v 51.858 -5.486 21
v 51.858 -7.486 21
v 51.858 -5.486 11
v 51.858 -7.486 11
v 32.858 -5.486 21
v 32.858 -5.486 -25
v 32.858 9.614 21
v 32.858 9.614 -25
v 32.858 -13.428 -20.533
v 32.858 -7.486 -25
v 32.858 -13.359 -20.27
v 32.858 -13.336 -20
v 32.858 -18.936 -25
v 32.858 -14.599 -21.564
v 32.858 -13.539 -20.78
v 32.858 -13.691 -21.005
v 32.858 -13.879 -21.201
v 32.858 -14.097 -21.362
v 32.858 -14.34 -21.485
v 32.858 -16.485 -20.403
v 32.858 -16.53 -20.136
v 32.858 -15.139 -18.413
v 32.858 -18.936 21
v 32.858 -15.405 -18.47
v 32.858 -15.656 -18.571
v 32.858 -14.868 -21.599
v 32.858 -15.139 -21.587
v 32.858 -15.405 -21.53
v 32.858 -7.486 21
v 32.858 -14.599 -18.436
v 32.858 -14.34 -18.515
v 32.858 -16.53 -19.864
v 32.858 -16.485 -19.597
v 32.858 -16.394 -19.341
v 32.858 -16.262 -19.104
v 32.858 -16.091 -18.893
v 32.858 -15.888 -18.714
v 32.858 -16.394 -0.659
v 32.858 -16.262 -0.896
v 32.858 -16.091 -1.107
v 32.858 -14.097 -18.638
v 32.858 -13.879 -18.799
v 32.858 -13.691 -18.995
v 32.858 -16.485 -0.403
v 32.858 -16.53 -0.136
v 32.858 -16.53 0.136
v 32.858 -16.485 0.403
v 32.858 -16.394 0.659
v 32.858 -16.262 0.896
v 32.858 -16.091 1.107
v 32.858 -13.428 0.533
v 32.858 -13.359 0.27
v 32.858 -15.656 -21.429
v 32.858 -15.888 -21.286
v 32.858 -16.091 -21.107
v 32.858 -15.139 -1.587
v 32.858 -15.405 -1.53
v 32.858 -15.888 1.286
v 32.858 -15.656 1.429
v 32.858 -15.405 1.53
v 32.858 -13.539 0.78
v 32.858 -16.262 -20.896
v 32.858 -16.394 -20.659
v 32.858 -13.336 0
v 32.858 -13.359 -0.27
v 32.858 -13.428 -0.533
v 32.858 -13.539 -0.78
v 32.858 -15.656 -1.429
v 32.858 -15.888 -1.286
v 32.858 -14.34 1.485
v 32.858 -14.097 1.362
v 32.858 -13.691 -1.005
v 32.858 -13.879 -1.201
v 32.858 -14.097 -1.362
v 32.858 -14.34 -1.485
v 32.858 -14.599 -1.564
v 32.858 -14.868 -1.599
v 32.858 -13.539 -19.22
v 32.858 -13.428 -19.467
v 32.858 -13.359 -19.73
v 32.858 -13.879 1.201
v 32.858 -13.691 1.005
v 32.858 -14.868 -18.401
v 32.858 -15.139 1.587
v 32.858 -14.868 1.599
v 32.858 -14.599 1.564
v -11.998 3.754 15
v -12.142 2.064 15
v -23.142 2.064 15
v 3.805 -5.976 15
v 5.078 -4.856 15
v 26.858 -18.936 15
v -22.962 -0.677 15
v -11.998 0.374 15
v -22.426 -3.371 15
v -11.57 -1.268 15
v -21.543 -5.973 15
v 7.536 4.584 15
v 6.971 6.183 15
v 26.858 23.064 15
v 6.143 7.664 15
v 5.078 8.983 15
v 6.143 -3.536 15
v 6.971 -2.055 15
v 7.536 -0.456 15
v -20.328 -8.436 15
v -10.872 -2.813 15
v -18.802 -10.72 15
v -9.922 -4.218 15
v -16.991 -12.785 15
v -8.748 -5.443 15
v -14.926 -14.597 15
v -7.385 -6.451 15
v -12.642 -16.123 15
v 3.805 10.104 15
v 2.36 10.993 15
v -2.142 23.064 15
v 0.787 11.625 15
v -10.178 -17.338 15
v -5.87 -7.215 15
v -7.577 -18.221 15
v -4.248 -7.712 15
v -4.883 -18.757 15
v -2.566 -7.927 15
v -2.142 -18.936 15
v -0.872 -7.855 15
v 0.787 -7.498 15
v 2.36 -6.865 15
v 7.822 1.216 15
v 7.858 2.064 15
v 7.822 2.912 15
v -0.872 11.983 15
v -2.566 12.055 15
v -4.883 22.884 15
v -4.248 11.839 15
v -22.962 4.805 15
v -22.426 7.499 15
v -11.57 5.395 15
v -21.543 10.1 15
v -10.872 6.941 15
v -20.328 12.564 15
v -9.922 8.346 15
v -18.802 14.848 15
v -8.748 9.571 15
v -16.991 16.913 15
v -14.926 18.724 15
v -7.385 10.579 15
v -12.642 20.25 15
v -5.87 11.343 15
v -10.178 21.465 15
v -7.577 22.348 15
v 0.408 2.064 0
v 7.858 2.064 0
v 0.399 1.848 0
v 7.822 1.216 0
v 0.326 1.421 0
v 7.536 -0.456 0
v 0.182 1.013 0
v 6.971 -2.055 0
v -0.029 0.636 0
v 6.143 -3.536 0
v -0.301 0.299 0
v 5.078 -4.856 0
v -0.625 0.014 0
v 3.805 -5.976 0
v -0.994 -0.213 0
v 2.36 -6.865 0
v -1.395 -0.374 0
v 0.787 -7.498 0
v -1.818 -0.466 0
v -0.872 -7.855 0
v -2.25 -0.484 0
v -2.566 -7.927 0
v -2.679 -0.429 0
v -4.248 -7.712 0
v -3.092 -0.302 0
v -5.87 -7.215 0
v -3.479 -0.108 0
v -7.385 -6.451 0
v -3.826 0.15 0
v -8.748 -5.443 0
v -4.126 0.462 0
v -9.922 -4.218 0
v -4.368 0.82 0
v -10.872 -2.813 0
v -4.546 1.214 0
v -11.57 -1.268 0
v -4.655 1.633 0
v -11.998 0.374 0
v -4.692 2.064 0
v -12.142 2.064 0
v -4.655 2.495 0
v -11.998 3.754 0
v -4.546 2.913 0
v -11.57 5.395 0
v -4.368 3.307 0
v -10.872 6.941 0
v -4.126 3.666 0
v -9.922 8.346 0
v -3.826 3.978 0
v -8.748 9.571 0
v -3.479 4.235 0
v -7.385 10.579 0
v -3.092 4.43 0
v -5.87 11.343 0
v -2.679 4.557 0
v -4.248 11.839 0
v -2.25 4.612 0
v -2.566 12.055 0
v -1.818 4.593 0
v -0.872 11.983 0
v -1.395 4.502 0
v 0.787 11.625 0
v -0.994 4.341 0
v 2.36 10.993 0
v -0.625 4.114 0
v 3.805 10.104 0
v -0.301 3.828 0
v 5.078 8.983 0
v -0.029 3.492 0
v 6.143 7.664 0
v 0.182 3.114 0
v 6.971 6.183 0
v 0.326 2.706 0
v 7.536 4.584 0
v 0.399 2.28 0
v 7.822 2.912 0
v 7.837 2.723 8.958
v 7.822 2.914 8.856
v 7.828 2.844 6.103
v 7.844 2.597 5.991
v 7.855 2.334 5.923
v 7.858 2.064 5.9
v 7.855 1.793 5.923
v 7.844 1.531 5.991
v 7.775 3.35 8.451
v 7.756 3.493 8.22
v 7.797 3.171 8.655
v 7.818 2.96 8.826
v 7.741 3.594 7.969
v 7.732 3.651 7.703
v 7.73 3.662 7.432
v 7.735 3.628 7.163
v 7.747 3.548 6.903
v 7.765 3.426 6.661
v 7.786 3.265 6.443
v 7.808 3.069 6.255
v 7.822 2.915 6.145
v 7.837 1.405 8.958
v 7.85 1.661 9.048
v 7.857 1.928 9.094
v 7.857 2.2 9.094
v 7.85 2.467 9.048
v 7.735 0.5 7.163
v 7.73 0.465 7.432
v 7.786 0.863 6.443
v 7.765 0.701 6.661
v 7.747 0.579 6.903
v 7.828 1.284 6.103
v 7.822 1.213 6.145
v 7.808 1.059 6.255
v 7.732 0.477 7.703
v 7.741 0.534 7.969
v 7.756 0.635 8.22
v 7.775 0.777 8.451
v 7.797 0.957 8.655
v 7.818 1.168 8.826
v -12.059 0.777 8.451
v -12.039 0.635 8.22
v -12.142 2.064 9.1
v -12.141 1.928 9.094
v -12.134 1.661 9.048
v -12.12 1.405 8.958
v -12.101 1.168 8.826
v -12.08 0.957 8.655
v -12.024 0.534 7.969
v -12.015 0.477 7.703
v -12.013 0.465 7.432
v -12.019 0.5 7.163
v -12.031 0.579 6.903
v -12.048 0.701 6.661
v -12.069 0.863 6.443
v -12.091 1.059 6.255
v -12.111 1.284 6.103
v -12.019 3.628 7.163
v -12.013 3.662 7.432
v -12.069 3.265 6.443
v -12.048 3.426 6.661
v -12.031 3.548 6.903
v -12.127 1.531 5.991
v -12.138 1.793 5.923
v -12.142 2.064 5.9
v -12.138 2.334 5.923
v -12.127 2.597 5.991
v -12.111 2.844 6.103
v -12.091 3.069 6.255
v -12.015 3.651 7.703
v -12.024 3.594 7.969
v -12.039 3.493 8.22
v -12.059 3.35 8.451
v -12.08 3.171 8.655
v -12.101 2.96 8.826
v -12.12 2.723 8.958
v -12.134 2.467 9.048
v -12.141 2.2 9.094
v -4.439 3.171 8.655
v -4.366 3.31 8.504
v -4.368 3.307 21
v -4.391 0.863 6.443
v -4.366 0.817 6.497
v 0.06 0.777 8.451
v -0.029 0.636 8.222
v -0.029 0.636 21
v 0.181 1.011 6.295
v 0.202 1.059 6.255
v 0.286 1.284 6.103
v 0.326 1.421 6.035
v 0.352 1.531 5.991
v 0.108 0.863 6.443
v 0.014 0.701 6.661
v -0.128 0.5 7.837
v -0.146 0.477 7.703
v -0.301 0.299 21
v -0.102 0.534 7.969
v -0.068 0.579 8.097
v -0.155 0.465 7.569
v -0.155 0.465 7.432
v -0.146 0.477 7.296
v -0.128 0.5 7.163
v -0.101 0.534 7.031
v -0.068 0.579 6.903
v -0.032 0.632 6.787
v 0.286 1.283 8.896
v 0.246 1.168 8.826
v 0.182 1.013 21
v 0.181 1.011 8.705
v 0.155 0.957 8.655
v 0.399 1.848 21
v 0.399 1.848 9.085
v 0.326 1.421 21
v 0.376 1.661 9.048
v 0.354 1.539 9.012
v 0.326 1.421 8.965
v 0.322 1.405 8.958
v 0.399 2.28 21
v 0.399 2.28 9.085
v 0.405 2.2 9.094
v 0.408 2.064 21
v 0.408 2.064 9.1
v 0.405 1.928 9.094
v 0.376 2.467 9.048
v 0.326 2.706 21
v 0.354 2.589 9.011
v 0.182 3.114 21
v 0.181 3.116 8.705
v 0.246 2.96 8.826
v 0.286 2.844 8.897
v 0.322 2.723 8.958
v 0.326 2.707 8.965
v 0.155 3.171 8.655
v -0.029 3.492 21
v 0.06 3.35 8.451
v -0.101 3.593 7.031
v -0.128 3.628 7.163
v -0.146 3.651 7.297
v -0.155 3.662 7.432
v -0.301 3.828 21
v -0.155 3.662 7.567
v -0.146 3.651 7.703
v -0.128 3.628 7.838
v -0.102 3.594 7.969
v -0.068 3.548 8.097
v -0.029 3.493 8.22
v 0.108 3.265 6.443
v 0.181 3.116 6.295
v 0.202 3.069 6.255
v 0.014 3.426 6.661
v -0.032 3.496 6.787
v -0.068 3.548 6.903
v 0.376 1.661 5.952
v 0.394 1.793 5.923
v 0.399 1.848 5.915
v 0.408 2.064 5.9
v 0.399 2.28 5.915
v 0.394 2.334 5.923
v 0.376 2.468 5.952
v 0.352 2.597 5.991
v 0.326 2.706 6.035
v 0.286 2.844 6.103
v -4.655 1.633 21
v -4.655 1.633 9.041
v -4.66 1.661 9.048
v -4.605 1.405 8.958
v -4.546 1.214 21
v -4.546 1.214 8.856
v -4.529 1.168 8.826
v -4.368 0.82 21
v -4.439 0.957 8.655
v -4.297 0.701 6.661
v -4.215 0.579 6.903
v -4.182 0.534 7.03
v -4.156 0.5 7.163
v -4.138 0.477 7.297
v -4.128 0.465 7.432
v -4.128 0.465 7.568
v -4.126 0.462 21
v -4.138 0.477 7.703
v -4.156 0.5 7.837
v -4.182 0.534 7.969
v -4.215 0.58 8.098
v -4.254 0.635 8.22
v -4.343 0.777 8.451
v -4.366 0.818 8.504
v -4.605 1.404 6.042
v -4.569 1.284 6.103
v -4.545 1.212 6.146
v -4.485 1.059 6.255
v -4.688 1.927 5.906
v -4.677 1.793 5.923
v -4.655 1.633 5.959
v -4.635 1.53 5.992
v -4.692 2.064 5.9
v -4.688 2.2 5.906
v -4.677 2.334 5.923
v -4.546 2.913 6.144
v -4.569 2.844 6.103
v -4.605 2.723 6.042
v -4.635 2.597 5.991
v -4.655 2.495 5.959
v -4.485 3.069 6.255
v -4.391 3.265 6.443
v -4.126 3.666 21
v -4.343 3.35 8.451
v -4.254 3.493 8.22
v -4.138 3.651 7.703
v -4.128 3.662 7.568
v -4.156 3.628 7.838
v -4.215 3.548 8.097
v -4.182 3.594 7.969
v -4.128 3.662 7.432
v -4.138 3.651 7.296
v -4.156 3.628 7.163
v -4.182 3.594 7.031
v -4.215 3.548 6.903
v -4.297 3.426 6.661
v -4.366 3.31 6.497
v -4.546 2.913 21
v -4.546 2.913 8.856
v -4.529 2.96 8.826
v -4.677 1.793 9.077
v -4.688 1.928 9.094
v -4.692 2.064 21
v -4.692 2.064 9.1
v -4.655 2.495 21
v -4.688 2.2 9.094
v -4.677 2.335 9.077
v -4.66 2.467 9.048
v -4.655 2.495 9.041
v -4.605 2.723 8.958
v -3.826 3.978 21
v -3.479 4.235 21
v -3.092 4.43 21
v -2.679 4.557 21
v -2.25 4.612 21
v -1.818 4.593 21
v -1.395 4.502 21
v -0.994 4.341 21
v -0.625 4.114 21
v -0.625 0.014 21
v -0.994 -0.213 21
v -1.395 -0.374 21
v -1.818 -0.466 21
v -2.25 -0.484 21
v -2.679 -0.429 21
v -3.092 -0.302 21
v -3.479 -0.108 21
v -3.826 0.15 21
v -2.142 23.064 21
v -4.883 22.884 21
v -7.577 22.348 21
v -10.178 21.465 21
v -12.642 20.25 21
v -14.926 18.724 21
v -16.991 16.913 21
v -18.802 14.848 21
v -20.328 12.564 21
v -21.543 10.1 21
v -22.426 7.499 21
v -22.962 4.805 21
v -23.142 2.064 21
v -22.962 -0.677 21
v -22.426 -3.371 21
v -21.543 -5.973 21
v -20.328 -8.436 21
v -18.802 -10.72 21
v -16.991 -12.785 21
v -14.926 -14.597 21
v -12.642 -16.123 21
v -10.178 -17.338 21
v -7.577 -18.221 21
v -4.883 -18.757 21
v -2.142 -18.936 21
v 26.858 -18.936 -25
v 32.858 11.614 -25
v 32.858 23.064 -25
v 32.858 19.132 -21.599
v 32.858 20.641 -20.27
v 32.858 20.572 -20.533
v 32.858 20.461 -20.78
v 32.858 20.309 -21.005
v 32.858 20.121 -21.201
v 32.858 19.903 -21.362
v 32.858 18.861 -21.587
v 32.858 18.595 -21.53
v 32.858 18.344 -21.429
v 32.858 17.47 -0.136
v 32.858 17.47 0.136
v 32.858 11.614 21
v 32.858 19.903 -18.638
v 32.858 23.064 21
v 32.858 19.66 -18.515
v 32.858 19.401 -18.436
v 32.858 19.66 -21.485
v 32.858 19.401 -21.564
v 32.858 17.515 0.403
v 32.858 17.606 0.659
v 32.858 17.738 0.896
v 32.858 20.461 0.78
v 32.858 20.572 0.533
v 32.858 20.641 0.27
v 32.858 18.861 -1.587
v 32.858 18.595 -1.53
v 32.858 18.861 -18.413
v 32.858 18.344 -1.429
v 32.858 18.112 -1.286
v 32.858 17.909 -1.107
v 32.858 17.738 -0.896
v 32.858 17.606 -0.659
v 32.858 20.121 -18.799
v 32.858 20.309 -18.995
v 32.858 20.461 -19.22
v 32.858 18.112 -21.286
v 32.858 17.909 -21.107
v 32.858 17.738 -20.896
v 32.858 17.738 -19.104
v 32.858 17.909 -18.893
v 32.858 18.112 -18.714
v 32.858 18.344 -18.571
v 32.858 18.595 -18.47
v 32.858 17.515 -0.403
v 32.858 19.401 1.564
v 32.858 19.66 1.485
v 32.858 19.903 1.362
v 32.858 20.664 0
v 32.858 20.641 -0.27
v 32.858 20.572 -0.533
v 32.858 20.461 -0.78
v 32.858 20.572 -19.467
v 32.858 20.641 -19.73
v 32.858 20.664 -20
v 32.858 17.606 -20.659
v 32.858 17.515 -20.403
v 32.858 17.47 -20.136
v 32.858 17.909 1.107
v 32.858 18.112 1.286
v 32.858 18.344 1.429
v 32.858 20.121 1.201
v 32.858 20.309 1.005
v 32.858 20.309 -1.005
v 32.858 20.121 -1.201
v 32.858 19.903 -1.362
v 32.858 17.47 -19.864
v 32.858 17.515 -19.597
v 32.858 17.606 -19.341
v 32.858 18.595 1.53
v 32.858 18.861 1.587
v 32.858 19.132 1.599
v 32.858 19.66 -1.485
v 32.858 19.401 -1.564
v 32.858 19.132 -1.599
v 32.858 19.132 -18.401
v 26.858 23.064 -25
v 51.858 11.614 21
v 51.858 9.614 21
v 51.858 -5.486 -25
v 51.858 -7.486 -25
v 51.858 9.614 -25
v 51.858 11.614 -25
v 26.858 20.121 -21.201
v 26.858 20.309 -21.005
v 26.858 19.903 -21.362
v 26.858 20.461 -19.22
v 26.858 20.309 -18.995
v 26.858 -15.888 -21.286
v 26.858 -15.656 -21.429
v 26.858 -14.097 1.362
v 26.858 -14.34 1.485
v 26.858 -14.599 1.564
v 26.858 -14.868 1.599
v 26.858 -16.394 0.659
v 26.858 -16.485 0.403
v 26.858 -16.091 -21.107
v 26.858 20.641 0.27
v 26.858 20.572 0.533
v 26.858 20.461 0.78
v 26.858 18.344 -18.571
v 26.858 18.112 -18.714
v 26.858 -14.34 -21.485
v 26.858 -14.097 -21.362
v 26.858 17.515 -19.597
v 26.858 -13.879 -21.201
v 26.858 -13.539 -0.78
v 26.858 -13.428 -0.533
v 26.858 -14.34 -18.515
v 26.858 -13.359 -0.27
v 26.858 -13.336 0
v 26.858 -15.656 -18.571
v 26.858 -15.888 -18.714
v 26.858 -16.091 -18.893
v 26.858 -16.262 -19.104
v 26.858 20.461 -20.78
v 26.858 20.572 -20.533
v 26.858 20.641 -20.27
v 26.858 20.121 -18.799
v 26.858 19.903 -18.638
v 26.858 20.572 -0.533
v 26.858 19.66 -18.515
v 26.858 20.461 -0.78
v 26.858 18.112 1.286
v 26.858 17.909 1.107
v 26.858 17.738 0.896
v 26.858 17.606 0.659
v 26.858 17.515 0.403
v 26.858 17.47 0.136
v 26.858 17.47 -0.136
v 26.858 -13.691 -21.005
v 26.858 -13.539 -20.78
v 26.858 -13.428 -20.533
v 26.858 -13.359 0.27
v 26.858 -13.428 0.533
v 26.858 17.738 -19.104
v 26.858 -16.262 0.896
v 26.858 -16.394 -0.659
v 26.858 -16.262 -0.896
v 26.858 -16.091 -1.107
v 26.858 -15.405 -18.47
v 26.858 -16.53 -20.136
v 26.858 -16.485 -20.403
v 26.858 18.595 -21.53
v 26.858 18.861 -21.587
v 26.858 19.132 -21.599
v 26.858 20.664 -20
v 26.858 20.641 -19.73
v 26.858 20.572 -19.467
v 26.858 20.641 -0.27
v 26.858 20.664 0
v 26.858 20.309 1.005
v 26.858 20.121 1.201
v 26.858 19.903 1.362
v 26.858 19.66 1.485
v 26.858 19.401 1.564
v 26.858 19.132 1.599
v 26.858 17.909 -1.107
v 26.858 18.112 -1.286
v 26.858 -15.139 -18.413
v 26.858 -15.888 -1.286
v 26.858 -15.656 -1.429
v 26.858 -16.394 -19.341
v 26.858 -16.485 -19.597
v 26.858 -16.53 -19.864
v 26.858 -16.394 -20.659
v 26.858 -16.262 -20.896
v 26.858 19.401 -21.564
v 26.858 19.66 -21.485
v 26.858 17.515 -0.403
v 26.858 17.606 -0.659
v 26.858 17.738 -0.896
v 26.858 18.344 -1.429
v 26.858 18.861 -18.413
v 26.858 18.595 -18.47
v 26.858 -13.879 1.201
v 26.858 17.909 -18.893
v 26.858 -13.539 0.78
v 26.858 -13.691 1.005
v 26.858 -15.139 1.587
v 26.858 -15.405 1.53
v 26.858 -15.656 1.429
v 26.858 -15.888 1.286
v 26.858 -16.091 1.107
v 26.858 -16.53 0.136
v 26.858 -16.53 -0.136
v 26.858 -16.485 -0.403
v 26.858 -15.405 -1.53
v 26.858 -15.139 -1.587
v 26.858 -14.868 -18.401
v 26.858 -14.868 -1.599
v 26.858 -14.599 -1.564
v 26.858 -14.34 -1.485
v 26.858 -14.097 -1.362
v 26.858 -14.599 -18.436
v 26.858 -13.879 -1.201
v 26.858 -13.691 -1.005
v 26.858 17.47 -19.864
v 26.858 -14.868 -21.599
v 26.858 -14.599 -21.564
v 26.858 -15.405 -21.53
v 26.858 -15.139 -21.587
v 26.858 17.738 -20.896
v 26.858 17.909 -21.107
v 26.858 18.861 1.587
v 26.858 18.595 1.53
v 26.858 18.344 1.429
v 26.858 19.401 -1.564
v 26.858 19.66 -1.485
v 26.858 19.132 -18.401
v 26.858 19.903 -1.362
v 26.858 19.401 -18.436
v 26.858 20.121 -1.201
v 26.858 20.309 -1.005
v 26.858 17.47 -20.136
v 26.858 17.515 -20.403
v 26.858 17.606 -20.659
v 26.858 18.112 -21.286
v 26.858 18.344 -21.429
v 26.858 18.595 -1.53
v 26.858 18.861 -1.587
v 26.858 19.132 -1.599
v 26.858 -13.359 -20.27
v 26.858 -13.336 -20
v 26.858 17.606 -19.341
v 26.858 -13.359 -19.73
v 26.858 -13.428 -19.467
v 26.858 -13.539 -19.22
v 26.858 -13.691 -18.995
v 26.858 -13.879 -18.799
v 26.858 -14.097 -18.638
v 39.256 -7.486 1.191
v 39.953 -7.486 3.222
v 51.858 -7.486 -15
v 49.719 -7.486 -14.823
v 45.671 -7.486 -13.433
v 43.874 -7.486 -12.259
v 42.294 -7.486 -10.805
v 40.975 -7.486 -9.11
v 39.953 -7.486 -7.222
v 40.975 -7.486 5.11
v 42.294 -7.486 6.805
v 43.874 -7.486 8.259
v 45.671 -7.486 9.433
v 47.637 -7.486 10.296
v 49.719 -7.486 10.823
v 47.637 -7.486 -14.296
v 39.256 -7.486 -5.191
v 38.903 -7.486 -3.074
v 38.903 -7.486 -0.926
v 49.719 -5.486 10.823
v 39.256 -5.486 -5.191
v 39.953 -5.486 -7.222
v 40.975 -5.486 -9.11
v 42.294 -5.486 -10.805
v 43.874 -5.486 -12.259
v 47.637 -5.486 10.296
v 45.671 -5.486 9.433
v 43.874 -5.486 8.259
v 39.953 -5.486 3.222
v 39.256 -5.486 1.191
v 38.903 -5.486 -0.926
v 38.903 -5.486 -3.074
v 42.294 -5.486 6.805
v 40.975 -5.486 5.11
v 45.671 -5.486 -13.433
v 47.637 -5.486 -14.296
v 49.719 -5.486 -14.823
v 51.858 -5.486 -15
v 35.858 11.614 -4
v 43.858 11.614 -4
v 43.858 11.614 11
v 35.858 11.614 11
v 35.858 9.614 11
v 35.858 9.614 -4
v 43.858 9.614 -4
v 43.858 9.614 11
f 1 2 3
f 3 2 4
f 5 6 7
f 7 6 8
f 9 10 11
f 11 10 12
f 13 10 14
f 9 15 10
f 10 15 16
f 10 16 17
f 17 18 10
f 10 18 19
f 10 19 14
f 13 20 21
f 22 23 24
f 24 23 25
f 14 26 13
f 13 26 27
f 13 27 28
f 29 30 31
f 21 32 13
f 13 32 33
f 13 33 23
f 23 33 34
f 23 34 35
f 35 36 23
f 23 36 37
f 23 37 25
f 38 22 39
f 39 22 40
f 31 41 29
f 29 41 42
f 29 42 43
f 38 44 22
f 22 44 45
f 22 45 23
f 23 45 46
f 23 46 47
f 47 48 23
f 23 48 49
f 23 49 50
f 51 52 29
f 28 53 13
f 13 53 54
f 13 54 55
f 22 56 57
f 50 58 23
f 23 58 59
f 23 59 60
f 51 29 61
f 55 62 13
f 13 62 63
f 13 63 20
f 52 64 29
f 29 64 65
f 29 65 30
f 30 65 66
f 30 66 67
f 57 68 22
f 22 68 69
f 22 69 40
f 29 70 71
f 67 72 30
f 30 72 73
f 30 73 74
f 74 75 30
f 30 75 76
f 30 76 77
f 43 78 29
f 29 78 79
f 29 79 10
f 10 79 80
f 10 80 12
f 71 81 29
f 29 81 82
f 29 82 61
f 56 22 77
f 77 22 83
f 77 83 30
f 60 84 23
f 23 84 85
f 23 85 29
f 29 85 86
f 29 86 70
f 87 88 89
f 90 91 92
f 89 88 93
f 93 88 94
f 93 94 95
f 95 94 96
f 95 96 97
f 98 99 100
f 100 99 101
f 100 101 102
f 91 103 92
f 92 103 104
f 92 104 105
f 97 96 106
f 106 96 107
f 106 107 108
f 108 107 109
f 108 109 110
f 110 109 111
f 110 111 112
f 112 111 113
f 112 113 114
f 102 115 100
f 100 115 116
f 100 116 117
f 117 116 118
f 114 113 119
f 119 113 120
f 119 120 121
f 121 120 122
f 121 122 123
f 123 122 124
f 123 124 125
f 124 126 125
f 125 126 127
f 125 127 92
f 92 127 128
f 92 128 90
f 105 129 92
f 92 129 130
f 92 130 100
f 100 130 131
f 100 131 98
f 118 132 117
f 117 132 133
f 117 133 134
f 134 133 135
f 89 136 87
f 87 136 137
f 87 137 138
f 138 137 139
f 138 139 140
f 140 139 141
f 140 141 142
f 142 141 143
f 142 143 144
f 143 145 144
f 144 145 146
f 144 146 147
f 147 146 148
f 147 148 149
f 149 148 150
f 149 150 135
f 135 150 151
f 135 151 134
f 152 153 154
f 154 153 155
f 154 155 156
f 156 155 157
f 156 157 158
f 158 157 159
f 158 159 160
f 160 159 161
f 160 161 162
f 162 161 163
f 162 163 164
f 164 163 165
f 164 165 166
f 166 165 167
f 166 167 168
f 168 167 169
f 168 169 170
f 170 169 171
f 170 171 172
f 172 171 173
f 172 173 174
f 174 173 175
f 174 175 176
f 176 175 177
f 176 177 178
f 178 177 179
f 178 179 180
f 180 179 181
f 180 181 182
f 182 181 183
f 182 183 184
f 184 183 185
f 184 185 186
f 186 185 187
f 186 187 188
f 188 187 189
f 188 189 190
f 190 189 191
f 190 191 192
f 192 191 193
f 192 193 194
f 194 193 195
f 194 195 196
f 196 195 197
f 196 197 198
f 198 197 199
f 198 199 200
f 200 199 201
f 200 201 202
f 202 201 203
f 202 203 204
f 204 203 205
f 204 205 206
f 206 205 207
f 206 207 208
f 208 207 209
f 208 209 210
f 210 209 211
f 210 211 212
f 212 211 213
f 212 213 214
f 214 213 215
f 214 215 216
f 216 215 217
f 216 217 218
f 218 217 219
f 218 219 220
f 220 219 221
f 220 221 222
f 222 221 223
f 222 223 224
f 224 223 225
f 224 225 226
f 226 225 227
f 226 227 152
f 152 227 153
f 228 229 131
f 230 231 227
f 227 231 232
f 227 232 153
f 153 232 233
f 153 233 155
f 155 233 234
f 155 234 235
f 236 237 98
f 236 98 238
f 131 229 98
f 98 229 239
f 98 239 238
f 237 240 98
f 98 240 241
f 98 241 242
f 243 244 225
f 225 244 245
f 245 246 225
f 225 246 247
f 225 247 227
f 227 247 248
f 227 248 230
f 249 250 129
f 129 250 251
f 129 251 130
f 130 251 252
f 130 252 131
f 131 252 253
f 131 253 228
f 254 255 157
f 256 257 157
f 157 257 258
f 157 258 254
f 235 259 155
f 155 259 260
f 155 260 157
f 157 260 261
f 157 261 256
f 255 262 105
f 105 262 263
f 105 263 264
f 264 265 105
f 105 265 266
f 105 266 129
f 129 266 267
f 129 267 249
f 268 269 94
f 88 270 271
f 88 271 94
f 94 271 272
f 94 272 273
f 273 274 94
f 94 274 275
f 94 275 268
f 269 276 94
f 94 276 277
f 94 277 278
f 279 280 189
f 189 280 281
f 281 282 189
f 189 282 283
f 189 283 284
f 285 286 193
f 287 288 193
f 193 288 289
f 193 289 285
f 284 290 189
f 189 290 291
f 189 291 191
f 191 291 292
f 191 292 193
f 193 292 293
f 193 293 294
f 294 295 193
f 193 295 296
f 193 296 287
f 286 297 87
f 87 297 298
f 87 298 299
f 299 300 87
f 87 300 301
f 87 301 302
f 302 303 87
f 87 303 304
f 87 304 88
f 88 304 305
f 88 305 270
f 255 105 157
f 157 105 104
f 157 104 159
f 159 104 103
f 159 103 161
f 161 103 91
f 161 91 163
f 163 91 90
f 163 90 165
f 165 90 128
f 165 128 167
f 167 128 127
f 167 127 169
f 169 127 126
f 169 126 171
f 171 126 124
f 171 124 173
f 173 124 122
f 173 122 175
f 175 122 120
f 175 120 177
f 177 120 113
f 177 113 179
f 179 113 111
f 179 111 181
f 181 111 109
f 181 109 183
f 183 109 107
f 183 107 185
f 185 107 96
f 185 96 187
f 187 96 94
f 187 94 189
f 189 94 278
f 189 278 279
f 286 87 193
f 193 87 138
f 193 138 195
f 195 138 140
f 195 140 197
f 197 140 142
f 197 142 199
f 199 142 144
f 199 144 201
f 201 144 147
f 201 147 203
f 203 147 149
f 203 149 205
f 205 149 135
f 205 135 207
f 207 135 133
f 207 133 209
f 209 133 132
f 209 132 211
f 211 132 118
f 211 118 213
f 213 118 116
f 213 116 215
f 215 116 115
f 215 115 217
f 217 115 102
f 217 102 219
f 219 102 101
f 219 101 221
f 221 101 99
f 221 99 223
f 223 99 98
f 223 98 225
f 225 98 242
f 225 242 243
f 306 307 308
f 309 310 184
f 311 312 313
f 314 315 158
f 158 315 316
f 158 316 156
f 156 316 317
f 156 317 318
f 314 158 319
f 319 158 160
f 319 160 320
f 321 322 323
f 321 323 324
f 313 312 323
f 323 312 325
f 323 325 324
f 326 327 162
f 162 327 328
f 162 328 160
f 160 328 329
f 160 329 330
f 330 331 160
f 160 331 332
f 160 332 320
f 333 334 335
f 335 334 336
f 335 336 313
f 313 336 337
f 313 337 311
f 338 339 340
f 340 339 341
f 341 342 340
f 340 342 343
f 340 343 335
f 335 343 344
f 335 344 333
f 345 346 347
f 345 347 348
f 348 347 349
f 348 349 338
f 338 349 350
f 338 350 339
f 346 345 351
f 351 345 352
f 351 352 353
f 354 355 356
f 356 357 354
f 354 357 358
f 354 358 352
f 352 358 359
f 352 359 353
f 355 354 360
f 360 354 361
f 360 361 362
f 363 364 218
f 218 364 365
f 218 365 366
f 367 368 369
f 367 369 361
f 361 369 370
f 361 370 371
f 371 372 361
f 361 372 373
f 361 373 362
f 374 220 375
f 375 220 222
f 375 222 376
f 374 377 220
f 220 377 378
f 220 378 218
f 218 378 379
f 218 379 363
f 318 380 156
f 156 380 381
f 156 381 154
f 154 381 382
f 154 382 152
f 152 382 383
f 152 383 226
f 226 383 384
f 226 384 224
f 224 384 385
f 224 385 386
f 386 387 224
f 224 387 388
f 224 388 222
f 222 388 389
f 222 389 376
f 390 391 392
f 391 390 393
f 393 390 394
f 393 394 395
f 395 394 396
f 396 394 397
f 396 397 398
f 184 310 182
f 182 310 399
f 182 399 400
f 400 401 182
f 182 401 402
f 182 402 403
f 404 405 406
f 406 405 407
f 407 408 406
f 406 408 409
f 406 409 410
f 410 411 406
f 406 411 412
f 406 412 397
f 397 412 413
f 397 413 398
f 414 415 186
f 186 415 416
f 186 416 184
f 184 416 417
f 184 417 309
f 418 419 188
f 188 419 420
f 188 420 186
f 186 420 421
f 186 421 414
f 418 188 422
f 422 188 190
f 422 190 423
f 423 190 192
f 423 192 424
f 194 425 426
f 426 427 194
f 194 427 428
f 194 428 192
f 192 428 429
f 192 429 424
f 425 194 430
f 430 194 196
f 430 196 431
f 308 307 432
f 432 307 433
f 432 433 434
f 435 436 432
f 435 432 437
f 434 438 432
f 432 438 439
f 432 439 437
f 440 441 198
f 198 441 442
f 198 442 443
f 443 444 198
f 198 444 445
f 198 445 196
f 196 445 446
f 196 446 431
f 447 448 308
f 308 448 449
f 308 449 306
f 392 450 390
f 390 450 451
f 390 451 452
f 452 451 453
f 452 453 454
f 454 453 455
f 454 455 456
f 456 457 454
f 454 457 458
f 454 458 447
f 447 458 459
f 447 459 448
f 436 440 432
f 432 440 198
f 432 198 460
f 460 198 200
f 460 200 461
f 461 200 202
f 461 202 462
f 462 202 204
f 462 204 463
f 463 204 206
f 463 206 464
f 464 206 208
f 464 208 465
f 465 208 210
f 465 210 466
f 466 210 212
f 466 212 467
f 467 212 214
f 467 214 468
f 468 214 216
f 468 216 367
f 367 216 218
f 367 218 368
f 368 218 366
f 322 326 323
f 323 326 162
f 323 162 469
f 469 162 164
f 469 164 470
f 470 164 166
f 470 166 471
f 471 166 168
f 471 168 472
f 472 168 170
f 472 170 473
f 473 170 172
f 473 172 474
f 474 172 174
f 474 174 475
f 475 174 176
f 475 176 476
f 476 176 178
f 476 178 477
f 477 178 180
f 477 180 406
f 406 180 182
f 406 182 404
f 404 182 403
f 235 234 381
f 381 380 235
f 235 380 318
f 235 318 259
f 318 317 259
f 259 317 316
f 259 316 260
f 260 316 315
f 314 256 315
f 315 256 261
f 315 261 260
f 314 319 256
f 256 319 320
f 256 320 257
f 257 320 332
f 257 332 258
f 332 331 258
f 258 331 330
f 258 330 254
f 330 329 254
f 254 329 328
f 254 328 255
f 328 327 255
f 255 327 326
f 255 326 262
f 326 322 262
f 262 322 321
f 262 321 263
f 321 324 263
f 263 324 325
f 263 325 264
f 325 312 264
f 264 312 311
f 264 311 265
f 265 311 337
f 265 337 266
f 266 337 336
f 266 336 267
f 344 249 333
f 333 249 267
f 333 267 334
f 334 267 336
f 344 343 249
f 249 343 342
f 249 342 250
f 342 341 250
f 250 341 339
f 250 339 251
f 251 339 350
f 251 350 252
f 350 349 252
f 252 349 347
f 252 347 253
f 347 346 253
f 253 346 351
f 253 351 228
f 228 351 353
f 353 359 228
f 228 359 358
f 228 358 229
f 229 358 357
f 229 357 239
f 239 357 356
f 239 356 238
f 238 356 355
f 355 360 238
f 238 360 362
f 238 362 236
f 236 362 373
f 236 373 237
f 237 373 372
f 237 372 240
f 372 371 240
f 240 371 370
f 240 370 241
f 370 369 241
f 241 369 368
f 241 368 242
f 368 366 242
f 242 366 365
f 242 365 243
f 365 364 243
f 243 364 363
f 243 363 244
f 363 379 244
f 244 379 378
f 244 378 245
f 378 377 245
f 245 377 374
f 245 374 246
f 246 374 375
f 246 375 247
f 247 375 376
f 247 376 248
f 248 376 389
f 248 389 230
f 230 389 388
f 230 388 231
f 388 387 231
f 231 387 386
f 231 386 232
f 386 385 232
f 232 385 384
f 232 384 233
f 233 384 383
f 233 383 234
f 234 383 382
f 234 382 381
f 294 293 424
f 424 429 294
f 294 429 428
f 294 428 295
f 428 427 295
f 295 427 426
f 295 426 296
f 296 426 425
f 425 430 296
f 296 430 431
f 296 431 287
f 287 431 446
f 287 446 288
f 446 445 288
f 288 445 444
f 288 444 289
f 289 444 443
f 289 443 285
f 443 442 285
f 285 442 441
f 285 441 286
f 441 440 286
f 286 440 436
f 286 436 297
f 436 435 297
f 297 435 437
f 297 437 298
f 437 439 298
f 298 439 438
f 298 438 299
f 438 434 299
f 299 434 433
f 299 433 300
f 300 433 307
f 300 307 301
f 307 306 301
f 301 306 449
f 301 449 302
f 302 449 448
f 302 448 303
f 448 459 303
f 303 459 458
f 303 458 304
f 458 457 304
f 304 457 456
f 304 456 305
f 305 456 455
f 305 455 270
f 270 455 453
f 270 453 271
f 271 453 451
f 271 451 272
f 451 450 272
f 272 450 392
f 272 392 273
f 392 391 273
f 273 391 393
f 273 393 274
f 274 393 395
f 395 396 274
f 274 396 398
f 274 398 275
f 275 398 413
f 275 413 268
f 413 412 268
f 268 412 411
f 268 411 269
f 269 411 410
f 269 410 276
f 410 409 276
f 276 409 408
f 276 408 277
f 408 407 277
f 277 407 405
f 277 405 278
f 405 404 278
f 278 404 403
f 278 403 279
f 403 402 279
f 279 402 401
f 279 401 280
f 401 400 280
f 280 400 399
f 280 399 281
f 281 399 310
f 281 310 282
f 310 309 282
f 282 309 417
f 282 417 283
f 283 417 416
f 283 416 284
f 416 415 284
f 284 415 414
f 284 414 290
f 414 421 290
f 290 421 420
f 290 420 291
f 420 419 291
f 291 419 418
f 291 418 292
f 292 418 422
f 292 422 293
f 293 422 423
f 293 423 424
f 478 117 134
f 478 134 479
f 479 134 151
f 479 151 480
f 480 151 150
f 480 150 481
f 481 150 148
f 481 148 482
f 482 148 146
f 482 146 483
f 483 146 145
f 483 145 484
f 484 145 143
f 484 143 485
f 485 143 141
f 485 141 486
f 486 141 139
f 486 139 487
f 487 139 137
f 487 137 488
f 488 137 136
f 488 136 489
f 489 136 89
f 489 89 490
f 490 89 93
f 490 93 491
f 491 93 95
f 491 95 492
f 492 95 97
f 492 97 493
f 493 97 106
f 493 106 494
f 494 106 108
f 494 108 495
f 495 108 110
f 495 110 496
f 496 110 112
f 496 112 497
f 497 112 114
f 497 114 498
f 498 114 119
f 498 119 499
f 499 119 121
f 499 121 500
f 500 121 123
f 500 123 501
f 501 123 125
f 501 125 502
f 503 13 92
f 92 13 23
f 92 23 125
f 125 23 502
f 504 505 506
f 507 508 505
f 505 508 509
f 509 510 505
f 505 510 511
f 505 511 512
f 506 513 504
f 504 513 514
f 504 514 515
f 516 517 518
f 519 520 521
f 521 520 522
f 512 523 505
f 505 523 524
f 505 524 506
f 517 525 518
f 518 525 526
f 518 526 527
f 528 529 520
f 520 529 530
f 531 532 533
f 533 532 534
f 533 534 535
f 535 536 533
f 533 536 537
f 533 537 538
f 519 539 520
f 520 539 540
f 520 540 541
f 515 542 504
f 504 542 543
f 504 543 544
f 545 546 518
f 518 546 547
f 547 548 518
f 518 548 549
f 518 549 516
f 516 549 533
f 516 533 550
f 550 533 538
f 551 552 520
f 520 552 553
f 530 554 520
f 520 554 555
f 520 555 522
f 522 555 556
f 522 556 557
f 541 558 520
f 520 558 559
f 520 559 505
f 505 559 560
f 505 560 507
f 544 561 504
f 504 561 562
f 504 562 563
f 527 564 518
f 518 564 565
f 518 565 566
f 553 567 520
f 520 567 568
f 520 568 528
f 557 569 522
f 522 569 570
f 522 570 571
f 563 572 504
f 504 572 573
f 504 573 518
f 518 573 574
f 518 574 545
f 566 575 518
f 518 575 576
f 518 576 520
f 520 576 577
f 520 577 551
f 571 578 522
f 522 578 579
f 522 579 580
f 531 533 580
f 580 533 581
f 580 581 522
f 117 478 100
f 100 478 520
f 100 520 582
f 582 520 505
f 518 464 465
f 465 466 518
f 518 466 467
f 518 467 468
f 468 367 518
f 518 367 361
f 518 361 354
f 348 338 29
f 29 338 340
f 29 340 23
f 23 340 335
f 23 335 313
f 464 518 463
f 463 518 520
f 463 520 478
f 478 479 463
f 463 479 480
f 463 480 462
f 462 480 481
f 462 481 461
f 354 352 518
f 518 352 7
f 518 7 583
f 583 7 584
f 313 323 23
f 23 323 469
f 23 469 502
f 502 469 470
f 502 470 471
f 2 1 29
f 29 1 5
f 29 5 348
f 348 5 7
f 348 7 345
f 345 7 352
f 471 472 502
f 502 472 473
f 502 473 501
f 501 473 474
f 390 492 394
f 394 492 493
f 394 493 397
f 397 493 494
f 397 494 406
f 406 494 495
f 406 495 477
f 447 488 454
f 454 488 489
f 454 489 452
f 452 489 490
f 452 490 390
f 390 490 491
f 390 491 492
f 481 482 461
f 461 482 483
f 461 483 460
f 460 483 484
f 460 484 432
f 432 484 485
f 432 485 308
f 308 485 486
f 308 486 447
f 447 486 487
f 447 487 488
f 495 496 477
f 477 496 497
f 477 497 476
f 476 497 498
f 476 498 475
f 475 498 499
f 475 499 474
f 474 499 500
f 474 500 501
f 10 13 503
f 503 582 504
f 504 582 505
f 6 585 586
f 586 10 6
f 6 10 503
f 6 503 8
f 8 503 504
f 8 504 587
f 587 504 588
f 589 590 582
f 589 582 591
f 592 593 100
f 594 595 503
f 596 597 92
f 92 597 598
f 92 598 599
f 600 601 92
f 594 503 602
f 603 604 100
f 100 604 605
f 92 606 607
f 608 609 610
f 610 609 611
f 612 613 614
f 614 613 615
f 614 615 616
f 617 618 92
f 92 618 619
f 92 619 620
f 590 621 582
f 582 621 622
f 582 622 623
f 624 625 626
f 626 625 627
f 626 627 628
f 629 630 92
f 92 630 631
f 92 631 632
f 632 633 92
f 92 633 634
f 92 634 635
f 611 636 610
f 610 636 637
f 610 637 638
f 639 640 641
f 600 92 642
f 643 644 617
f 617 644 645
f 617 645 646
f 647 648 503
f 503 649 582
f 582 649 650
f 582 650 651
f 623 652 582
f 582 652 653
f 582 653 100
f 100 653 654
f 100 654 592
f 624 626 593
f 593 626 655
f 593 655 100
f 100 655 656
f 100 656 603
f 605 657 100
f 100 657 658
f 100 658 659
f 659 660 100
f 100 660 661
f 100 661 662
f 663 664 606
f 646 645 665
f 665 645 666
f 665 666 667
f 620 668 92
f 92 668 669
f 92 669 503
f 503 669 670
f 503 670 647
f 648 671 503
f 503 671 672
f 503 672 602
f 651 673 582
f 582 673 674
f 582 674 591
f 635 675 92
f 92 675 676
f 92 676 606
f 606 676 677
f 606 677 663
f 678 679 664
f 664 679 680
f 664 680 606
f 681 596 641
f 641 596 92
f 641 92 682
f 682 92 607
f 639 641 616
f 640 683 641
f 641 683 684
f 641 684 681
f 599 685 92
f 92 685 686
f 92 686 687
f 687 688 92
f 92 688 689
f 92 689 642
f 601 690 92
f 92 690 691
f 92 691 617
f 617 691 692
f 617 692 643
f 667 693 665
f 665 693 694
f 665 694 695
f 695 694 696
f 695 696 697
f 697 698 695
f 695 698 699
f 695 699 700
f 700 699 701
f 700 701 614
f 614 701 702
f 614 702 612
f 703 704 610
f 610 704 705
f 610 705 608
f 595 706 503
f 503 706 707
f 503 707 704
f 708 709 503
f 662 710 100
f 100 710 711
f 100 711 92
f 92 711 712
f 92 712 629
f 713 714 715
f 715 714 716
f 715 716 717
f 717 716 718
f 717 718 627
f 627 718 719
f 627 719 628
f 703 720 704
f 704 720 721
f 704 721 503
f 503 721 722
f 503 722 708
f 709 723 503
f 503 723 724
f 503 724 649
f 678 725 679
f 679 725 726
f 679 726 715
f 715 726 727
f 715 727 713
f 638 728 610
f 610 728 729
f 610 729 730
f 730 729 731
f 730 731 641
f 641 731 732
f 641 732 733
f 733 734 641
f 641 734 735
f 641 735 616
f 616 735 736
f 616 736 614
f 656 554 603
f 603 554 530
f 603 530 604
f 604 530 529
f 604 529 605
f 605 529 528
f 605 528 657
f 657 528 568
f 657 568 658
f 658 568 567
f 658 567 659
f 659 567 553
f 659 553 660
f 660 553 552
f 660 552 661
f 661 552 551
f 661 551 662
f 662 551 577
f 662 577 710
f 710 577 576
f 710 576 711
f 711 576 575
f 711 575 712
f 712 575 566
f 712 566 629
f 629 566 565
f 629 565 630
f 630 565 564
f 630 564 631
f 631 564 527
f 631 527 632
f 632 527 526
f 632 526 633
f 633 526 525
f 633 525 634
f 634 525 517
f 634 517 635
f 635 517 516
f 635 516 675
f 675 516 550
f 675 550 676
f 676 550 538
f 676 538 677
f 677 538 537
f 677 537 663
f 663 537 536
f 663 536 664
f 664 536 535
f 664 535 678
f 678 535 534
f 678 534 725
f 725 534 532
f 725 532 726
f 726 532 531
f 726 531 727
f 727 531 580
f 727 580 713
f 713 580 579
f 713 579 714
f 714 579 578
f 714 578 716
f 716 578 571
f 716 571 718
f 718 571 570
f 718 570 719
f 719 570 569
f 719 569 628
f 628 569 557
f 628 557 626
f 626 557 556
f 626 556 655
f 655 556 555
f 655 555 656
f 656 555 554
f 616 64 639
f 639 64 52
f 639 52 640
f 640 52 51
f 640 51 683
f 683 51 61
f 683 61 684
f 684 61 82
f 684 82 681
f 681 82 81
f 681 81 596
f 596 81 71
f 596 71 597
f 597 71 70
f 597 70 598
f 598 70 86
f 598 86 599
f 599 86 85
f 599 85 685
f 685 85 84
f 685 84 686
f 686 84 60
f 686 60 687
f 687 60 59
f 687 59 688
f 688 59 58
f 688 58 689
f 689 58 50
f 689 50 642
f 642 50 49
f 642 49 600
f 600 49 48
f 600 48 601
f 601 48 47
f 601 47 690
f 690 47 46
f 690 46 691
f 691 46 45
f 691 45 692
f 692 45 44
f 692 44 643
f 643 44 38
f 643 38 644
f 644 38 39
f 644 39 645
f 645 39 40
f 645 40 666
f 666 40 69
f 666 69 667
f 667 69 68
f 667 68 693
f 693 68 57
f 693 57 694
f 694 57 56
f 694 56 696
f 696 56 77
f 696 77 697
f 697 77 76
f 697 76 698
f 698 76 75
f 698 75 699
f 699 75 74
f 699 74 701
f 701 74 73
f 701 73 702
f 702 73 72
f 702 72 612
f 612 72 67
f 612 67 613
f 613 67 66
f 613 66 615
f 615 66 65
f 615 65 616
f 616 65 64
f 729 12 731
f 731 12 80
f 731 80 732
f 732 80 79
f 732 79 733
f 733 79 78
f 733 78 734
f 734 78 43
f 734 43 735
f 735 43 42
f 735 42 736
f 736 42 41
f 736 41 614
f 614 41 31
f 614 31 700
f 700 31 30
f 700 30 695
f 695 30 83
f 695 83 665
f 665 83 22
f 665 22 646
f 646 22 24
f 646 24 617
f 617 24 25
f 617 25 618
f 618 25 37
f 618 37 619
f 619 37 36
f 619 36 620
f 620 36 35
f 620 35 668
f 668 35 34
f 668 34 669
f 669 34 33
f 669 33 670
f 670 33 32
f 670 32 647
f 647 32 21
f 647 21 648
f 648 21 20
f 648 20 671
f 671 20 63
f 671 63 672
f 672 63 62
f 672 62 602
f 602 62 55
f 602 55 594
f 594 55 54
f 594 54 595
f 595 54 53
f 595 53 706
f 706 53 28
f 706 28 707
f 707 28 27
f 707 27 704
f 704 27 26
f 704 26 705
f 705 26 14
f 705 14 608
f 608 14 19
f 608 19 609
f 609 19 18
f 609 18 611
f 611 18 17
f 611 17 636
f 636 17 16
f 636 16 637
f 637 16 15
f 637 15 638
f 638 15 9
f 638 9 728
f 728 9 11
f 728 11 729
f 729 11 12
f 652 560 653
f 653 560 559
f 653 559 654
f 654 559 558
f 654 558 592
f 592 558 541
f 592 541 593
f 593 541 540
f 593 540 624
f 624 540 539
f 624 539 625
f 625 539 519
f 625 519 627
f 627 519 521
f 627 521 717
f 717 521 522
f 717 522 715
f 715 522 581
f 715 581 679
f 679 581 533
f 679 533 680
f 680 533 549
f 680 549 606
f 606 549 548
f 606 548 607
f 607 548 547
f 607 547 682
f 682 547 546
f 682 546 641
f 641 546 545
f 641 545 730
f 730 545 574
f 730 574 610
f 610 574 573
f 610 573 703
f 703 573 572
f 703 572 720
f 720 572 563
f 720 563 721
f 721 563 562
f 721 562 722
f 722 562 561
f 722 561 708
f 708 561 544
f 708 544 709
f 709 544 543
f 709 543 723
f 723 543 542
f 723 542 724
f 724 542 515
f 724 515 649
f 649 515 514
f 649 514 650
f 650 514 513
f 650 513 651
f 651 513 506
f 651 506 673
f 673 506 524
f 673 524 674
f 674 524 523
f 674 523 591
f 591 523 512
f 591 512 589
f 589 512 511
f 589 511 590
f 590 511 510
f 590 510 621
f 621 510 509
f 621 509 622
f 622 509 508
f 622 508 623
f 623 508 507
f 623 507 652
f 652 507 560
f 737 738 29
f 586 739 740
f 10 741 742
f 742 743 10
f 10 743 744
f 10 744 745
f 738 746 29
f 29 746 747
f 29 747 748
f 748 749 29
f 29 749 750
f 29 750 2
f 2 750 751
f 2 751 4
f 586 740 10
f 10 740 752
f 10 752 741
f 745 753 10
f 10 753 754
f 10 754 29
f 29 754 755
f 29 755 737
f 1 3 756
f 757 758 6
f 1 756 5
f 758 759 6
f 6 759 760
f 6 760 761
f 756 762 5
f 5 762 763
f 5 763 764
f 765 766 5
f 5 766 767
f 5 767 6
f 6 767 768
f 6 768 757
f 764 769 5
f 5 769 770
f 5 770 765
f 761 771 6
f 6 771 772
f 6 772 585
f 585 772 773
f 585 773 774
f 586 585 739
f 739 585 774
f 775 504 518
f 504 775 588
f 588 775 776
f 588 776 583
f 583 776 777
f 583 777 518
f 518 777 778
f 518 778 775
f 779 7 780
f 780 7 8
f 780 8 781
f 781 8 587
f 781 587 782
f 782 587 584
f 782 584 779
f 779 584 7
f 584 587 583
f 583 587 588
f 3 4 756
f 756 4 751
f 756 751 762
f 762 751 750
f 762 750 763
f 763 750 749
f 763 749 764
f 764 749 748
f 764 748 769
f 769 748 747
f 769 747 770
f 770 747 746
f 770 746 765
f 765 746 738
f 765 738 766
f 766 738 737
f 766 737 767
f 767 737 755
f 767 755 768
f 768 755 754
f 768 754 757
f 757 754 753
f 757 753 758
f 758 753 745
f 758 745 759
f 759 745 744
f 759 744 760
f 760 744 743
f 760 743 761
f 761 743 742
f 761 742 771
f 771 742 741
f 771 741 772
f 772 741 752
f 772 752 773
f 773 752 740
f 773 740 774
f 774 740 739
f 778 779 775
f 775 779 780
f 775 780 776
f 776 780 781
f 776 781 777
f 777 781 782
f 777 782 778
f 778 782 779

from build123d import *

# Parameters (mm, degrees)
SKETCH_1_R          = 10
SKETCH_1_R_2        = 2.55
EXTRUDE_1_DEPTH     = 15
SKETCH_3_R          = 1.6
CUT_EXTRUDE_1_DEPTH = 21
EXTRUDE_2_DEPTH     = 6
SKETCH_6_R          = 2.55
CUT_EXTRUDE_2_DEPTH = 10
SKETCH_7_W          = 40
SKETCH_7_H          = 42
EXTRUDE_3_DEPTH     = 6
SKETCH_8_R          = 1.6
CUT_EXTRUDE_3_DEPTH = 6
SKETCH_9_W          = 46
SKETCH_9_H          = 2
EXTRUDE_4_DEPTH     = 19
SKETCH_10_R         = 13
CUT_EXTRUDE_4_DEPTH = 8
SKETCH_11_W         = 8
SKETCH_11_H         = 15
CUT_EXTRUDE_5_DEPTH = 8


with BuildPart() as part:
    # 草图1 → 凸台-拉伸1 (new body)
    with BuildSketch(Plane.XY):
        with Locations((-2.14168272, 2.06384273)):
            Circle(SKETCH_1_R)
        with Locations((-2.14168272, 2.06384273)):
            Circle(SKETCH_1_R_2, mode=Mode.SUBTRACT)
    extrude(amount=EXTRUDE_1_DEPTH)

    # 草图3 → 切除-拉伸1 (cut, through all)
    with BuildSketch(Plane(origin=(7.85831728, 0, 0), x_dir=(0, 0, -1), z_dir=(1, 0, 0))):
        with Locations((-7.5, 2.06384273)):
            Circle(SKETCH_3_R)
    extrude(amount=-CUT_EXTRUDE_1_DEPTH, mode=Mode.SUBTRACT)

    # 草图5 → 凸台-拉伸2 (add)
    with BuildSketch(Plane.XY.offset(15)):
        with BuildLine():
            Line((-2.14168272, 23.06384273), (32.85831728, 23.06384273))
            Line((32.85831728, 23.06384273), (32.85831728, -18.93615727))
            Line((32.85831728, -18.93615727), (-2.14168272, -18.93615727))
            ThreePointArc((-2.14168272, -18.93615727), (-23.14168272, 2.06384273), (-2.14168272, 23.06384273))
        make_face()
    extrude(amount=EXTRUDE_2_DEPTH)

    # 草图6 → 切除-拉伸2 (cut)
    with BuildSketch(Plane(origin=(0, 0, 15), x_dir=(-1, 0, 0), z_dir=(0, 0, -1))):
        with Locations((2.14168272, 2.06384273)):
            Circle(SKETCH_6_R)
    extrude(amount=-CUT_EXTRUDE_2_DEPTH, mode=Mode.SUBTRACT)

    # 草图7 → 凸台-拉伸3 (add)
    with BuildSketch(Plane(origin=(32.85831728, 0, 0), x_dir=(0, 0, -1), z_dir=(1, 0, 0))):
        with Locations((5, 2.06384273)):
            Rectangle(SKETCH_7_W, SKETCH_7_H)
    extrude(amount=-EXTRUDE_3_DEPTH)

    # 草图8 → 切除-拉伸3 (cut)
    with BuildSketch(Plane(origin=(32.85831728, 0, 0), x_dir=(0, 0, -1), z_dir=(1, 0, 0))):
        with Locations((0, 19.06384273)):
            Circle(SKETCH_8_R)
        with Locations((0, -14.93615727)):
            Circle(SKETCH_8_R)
        with Locations((20, -14.93615727)):
            Circle(SKETCH_8_R)
        with Locations((20, 19.06384273)):
            Circle(SKETCH_8_R)
    extrude(amount=-CUT_EXTRUDE_3_DEPTH, mode=Mode.SUBTRACT)

    # 草图9 → 凸台-拉伸4 (add)
    with BuildSketch(Plane(origin=(32.85831728, 0, 0), x_dir=(0, 0, -1), z_dir=(1, 0, 0))):
        with Locations((2, 10.61384273)):
            Rectangle(SKETCH_9_W, SKETCH_9_H)
        with Locations((2, -6.48615727)):
            Rectangle(SKETCH_9_W, SKETCH_9_H)
    extrude(amount=EXTRUDE_4_DEPTH)

    # 草图10 → 切除-拉伸4 (cut)
    with BuildSketch(Plane.XZ.offset(7.48615727)):
        with Locations((51.85831728, -2)):
            Circle(SKETCH_10_R)
    extrude(amount=-CUT_EXTRUDE_4_DEPTH, mode=Mode.SUBTRACT)

    # 草图11 → 切除-拉伸5 (cut)
    with BuildSketch(Plane(origin=(0, 11.61384273, 0), x_dir=(1, 0, 0), z_dir=(0, 1, 0))):
        with Locations((39.85831728, -3.5)):
            Rectangle(SKETCH_11_W, SKETCH_11_H)
    extrude(amount=-CUT_EXTRUDE_5_DEPTH, mode=Mode.SUBTRACT)


solid = part.part
